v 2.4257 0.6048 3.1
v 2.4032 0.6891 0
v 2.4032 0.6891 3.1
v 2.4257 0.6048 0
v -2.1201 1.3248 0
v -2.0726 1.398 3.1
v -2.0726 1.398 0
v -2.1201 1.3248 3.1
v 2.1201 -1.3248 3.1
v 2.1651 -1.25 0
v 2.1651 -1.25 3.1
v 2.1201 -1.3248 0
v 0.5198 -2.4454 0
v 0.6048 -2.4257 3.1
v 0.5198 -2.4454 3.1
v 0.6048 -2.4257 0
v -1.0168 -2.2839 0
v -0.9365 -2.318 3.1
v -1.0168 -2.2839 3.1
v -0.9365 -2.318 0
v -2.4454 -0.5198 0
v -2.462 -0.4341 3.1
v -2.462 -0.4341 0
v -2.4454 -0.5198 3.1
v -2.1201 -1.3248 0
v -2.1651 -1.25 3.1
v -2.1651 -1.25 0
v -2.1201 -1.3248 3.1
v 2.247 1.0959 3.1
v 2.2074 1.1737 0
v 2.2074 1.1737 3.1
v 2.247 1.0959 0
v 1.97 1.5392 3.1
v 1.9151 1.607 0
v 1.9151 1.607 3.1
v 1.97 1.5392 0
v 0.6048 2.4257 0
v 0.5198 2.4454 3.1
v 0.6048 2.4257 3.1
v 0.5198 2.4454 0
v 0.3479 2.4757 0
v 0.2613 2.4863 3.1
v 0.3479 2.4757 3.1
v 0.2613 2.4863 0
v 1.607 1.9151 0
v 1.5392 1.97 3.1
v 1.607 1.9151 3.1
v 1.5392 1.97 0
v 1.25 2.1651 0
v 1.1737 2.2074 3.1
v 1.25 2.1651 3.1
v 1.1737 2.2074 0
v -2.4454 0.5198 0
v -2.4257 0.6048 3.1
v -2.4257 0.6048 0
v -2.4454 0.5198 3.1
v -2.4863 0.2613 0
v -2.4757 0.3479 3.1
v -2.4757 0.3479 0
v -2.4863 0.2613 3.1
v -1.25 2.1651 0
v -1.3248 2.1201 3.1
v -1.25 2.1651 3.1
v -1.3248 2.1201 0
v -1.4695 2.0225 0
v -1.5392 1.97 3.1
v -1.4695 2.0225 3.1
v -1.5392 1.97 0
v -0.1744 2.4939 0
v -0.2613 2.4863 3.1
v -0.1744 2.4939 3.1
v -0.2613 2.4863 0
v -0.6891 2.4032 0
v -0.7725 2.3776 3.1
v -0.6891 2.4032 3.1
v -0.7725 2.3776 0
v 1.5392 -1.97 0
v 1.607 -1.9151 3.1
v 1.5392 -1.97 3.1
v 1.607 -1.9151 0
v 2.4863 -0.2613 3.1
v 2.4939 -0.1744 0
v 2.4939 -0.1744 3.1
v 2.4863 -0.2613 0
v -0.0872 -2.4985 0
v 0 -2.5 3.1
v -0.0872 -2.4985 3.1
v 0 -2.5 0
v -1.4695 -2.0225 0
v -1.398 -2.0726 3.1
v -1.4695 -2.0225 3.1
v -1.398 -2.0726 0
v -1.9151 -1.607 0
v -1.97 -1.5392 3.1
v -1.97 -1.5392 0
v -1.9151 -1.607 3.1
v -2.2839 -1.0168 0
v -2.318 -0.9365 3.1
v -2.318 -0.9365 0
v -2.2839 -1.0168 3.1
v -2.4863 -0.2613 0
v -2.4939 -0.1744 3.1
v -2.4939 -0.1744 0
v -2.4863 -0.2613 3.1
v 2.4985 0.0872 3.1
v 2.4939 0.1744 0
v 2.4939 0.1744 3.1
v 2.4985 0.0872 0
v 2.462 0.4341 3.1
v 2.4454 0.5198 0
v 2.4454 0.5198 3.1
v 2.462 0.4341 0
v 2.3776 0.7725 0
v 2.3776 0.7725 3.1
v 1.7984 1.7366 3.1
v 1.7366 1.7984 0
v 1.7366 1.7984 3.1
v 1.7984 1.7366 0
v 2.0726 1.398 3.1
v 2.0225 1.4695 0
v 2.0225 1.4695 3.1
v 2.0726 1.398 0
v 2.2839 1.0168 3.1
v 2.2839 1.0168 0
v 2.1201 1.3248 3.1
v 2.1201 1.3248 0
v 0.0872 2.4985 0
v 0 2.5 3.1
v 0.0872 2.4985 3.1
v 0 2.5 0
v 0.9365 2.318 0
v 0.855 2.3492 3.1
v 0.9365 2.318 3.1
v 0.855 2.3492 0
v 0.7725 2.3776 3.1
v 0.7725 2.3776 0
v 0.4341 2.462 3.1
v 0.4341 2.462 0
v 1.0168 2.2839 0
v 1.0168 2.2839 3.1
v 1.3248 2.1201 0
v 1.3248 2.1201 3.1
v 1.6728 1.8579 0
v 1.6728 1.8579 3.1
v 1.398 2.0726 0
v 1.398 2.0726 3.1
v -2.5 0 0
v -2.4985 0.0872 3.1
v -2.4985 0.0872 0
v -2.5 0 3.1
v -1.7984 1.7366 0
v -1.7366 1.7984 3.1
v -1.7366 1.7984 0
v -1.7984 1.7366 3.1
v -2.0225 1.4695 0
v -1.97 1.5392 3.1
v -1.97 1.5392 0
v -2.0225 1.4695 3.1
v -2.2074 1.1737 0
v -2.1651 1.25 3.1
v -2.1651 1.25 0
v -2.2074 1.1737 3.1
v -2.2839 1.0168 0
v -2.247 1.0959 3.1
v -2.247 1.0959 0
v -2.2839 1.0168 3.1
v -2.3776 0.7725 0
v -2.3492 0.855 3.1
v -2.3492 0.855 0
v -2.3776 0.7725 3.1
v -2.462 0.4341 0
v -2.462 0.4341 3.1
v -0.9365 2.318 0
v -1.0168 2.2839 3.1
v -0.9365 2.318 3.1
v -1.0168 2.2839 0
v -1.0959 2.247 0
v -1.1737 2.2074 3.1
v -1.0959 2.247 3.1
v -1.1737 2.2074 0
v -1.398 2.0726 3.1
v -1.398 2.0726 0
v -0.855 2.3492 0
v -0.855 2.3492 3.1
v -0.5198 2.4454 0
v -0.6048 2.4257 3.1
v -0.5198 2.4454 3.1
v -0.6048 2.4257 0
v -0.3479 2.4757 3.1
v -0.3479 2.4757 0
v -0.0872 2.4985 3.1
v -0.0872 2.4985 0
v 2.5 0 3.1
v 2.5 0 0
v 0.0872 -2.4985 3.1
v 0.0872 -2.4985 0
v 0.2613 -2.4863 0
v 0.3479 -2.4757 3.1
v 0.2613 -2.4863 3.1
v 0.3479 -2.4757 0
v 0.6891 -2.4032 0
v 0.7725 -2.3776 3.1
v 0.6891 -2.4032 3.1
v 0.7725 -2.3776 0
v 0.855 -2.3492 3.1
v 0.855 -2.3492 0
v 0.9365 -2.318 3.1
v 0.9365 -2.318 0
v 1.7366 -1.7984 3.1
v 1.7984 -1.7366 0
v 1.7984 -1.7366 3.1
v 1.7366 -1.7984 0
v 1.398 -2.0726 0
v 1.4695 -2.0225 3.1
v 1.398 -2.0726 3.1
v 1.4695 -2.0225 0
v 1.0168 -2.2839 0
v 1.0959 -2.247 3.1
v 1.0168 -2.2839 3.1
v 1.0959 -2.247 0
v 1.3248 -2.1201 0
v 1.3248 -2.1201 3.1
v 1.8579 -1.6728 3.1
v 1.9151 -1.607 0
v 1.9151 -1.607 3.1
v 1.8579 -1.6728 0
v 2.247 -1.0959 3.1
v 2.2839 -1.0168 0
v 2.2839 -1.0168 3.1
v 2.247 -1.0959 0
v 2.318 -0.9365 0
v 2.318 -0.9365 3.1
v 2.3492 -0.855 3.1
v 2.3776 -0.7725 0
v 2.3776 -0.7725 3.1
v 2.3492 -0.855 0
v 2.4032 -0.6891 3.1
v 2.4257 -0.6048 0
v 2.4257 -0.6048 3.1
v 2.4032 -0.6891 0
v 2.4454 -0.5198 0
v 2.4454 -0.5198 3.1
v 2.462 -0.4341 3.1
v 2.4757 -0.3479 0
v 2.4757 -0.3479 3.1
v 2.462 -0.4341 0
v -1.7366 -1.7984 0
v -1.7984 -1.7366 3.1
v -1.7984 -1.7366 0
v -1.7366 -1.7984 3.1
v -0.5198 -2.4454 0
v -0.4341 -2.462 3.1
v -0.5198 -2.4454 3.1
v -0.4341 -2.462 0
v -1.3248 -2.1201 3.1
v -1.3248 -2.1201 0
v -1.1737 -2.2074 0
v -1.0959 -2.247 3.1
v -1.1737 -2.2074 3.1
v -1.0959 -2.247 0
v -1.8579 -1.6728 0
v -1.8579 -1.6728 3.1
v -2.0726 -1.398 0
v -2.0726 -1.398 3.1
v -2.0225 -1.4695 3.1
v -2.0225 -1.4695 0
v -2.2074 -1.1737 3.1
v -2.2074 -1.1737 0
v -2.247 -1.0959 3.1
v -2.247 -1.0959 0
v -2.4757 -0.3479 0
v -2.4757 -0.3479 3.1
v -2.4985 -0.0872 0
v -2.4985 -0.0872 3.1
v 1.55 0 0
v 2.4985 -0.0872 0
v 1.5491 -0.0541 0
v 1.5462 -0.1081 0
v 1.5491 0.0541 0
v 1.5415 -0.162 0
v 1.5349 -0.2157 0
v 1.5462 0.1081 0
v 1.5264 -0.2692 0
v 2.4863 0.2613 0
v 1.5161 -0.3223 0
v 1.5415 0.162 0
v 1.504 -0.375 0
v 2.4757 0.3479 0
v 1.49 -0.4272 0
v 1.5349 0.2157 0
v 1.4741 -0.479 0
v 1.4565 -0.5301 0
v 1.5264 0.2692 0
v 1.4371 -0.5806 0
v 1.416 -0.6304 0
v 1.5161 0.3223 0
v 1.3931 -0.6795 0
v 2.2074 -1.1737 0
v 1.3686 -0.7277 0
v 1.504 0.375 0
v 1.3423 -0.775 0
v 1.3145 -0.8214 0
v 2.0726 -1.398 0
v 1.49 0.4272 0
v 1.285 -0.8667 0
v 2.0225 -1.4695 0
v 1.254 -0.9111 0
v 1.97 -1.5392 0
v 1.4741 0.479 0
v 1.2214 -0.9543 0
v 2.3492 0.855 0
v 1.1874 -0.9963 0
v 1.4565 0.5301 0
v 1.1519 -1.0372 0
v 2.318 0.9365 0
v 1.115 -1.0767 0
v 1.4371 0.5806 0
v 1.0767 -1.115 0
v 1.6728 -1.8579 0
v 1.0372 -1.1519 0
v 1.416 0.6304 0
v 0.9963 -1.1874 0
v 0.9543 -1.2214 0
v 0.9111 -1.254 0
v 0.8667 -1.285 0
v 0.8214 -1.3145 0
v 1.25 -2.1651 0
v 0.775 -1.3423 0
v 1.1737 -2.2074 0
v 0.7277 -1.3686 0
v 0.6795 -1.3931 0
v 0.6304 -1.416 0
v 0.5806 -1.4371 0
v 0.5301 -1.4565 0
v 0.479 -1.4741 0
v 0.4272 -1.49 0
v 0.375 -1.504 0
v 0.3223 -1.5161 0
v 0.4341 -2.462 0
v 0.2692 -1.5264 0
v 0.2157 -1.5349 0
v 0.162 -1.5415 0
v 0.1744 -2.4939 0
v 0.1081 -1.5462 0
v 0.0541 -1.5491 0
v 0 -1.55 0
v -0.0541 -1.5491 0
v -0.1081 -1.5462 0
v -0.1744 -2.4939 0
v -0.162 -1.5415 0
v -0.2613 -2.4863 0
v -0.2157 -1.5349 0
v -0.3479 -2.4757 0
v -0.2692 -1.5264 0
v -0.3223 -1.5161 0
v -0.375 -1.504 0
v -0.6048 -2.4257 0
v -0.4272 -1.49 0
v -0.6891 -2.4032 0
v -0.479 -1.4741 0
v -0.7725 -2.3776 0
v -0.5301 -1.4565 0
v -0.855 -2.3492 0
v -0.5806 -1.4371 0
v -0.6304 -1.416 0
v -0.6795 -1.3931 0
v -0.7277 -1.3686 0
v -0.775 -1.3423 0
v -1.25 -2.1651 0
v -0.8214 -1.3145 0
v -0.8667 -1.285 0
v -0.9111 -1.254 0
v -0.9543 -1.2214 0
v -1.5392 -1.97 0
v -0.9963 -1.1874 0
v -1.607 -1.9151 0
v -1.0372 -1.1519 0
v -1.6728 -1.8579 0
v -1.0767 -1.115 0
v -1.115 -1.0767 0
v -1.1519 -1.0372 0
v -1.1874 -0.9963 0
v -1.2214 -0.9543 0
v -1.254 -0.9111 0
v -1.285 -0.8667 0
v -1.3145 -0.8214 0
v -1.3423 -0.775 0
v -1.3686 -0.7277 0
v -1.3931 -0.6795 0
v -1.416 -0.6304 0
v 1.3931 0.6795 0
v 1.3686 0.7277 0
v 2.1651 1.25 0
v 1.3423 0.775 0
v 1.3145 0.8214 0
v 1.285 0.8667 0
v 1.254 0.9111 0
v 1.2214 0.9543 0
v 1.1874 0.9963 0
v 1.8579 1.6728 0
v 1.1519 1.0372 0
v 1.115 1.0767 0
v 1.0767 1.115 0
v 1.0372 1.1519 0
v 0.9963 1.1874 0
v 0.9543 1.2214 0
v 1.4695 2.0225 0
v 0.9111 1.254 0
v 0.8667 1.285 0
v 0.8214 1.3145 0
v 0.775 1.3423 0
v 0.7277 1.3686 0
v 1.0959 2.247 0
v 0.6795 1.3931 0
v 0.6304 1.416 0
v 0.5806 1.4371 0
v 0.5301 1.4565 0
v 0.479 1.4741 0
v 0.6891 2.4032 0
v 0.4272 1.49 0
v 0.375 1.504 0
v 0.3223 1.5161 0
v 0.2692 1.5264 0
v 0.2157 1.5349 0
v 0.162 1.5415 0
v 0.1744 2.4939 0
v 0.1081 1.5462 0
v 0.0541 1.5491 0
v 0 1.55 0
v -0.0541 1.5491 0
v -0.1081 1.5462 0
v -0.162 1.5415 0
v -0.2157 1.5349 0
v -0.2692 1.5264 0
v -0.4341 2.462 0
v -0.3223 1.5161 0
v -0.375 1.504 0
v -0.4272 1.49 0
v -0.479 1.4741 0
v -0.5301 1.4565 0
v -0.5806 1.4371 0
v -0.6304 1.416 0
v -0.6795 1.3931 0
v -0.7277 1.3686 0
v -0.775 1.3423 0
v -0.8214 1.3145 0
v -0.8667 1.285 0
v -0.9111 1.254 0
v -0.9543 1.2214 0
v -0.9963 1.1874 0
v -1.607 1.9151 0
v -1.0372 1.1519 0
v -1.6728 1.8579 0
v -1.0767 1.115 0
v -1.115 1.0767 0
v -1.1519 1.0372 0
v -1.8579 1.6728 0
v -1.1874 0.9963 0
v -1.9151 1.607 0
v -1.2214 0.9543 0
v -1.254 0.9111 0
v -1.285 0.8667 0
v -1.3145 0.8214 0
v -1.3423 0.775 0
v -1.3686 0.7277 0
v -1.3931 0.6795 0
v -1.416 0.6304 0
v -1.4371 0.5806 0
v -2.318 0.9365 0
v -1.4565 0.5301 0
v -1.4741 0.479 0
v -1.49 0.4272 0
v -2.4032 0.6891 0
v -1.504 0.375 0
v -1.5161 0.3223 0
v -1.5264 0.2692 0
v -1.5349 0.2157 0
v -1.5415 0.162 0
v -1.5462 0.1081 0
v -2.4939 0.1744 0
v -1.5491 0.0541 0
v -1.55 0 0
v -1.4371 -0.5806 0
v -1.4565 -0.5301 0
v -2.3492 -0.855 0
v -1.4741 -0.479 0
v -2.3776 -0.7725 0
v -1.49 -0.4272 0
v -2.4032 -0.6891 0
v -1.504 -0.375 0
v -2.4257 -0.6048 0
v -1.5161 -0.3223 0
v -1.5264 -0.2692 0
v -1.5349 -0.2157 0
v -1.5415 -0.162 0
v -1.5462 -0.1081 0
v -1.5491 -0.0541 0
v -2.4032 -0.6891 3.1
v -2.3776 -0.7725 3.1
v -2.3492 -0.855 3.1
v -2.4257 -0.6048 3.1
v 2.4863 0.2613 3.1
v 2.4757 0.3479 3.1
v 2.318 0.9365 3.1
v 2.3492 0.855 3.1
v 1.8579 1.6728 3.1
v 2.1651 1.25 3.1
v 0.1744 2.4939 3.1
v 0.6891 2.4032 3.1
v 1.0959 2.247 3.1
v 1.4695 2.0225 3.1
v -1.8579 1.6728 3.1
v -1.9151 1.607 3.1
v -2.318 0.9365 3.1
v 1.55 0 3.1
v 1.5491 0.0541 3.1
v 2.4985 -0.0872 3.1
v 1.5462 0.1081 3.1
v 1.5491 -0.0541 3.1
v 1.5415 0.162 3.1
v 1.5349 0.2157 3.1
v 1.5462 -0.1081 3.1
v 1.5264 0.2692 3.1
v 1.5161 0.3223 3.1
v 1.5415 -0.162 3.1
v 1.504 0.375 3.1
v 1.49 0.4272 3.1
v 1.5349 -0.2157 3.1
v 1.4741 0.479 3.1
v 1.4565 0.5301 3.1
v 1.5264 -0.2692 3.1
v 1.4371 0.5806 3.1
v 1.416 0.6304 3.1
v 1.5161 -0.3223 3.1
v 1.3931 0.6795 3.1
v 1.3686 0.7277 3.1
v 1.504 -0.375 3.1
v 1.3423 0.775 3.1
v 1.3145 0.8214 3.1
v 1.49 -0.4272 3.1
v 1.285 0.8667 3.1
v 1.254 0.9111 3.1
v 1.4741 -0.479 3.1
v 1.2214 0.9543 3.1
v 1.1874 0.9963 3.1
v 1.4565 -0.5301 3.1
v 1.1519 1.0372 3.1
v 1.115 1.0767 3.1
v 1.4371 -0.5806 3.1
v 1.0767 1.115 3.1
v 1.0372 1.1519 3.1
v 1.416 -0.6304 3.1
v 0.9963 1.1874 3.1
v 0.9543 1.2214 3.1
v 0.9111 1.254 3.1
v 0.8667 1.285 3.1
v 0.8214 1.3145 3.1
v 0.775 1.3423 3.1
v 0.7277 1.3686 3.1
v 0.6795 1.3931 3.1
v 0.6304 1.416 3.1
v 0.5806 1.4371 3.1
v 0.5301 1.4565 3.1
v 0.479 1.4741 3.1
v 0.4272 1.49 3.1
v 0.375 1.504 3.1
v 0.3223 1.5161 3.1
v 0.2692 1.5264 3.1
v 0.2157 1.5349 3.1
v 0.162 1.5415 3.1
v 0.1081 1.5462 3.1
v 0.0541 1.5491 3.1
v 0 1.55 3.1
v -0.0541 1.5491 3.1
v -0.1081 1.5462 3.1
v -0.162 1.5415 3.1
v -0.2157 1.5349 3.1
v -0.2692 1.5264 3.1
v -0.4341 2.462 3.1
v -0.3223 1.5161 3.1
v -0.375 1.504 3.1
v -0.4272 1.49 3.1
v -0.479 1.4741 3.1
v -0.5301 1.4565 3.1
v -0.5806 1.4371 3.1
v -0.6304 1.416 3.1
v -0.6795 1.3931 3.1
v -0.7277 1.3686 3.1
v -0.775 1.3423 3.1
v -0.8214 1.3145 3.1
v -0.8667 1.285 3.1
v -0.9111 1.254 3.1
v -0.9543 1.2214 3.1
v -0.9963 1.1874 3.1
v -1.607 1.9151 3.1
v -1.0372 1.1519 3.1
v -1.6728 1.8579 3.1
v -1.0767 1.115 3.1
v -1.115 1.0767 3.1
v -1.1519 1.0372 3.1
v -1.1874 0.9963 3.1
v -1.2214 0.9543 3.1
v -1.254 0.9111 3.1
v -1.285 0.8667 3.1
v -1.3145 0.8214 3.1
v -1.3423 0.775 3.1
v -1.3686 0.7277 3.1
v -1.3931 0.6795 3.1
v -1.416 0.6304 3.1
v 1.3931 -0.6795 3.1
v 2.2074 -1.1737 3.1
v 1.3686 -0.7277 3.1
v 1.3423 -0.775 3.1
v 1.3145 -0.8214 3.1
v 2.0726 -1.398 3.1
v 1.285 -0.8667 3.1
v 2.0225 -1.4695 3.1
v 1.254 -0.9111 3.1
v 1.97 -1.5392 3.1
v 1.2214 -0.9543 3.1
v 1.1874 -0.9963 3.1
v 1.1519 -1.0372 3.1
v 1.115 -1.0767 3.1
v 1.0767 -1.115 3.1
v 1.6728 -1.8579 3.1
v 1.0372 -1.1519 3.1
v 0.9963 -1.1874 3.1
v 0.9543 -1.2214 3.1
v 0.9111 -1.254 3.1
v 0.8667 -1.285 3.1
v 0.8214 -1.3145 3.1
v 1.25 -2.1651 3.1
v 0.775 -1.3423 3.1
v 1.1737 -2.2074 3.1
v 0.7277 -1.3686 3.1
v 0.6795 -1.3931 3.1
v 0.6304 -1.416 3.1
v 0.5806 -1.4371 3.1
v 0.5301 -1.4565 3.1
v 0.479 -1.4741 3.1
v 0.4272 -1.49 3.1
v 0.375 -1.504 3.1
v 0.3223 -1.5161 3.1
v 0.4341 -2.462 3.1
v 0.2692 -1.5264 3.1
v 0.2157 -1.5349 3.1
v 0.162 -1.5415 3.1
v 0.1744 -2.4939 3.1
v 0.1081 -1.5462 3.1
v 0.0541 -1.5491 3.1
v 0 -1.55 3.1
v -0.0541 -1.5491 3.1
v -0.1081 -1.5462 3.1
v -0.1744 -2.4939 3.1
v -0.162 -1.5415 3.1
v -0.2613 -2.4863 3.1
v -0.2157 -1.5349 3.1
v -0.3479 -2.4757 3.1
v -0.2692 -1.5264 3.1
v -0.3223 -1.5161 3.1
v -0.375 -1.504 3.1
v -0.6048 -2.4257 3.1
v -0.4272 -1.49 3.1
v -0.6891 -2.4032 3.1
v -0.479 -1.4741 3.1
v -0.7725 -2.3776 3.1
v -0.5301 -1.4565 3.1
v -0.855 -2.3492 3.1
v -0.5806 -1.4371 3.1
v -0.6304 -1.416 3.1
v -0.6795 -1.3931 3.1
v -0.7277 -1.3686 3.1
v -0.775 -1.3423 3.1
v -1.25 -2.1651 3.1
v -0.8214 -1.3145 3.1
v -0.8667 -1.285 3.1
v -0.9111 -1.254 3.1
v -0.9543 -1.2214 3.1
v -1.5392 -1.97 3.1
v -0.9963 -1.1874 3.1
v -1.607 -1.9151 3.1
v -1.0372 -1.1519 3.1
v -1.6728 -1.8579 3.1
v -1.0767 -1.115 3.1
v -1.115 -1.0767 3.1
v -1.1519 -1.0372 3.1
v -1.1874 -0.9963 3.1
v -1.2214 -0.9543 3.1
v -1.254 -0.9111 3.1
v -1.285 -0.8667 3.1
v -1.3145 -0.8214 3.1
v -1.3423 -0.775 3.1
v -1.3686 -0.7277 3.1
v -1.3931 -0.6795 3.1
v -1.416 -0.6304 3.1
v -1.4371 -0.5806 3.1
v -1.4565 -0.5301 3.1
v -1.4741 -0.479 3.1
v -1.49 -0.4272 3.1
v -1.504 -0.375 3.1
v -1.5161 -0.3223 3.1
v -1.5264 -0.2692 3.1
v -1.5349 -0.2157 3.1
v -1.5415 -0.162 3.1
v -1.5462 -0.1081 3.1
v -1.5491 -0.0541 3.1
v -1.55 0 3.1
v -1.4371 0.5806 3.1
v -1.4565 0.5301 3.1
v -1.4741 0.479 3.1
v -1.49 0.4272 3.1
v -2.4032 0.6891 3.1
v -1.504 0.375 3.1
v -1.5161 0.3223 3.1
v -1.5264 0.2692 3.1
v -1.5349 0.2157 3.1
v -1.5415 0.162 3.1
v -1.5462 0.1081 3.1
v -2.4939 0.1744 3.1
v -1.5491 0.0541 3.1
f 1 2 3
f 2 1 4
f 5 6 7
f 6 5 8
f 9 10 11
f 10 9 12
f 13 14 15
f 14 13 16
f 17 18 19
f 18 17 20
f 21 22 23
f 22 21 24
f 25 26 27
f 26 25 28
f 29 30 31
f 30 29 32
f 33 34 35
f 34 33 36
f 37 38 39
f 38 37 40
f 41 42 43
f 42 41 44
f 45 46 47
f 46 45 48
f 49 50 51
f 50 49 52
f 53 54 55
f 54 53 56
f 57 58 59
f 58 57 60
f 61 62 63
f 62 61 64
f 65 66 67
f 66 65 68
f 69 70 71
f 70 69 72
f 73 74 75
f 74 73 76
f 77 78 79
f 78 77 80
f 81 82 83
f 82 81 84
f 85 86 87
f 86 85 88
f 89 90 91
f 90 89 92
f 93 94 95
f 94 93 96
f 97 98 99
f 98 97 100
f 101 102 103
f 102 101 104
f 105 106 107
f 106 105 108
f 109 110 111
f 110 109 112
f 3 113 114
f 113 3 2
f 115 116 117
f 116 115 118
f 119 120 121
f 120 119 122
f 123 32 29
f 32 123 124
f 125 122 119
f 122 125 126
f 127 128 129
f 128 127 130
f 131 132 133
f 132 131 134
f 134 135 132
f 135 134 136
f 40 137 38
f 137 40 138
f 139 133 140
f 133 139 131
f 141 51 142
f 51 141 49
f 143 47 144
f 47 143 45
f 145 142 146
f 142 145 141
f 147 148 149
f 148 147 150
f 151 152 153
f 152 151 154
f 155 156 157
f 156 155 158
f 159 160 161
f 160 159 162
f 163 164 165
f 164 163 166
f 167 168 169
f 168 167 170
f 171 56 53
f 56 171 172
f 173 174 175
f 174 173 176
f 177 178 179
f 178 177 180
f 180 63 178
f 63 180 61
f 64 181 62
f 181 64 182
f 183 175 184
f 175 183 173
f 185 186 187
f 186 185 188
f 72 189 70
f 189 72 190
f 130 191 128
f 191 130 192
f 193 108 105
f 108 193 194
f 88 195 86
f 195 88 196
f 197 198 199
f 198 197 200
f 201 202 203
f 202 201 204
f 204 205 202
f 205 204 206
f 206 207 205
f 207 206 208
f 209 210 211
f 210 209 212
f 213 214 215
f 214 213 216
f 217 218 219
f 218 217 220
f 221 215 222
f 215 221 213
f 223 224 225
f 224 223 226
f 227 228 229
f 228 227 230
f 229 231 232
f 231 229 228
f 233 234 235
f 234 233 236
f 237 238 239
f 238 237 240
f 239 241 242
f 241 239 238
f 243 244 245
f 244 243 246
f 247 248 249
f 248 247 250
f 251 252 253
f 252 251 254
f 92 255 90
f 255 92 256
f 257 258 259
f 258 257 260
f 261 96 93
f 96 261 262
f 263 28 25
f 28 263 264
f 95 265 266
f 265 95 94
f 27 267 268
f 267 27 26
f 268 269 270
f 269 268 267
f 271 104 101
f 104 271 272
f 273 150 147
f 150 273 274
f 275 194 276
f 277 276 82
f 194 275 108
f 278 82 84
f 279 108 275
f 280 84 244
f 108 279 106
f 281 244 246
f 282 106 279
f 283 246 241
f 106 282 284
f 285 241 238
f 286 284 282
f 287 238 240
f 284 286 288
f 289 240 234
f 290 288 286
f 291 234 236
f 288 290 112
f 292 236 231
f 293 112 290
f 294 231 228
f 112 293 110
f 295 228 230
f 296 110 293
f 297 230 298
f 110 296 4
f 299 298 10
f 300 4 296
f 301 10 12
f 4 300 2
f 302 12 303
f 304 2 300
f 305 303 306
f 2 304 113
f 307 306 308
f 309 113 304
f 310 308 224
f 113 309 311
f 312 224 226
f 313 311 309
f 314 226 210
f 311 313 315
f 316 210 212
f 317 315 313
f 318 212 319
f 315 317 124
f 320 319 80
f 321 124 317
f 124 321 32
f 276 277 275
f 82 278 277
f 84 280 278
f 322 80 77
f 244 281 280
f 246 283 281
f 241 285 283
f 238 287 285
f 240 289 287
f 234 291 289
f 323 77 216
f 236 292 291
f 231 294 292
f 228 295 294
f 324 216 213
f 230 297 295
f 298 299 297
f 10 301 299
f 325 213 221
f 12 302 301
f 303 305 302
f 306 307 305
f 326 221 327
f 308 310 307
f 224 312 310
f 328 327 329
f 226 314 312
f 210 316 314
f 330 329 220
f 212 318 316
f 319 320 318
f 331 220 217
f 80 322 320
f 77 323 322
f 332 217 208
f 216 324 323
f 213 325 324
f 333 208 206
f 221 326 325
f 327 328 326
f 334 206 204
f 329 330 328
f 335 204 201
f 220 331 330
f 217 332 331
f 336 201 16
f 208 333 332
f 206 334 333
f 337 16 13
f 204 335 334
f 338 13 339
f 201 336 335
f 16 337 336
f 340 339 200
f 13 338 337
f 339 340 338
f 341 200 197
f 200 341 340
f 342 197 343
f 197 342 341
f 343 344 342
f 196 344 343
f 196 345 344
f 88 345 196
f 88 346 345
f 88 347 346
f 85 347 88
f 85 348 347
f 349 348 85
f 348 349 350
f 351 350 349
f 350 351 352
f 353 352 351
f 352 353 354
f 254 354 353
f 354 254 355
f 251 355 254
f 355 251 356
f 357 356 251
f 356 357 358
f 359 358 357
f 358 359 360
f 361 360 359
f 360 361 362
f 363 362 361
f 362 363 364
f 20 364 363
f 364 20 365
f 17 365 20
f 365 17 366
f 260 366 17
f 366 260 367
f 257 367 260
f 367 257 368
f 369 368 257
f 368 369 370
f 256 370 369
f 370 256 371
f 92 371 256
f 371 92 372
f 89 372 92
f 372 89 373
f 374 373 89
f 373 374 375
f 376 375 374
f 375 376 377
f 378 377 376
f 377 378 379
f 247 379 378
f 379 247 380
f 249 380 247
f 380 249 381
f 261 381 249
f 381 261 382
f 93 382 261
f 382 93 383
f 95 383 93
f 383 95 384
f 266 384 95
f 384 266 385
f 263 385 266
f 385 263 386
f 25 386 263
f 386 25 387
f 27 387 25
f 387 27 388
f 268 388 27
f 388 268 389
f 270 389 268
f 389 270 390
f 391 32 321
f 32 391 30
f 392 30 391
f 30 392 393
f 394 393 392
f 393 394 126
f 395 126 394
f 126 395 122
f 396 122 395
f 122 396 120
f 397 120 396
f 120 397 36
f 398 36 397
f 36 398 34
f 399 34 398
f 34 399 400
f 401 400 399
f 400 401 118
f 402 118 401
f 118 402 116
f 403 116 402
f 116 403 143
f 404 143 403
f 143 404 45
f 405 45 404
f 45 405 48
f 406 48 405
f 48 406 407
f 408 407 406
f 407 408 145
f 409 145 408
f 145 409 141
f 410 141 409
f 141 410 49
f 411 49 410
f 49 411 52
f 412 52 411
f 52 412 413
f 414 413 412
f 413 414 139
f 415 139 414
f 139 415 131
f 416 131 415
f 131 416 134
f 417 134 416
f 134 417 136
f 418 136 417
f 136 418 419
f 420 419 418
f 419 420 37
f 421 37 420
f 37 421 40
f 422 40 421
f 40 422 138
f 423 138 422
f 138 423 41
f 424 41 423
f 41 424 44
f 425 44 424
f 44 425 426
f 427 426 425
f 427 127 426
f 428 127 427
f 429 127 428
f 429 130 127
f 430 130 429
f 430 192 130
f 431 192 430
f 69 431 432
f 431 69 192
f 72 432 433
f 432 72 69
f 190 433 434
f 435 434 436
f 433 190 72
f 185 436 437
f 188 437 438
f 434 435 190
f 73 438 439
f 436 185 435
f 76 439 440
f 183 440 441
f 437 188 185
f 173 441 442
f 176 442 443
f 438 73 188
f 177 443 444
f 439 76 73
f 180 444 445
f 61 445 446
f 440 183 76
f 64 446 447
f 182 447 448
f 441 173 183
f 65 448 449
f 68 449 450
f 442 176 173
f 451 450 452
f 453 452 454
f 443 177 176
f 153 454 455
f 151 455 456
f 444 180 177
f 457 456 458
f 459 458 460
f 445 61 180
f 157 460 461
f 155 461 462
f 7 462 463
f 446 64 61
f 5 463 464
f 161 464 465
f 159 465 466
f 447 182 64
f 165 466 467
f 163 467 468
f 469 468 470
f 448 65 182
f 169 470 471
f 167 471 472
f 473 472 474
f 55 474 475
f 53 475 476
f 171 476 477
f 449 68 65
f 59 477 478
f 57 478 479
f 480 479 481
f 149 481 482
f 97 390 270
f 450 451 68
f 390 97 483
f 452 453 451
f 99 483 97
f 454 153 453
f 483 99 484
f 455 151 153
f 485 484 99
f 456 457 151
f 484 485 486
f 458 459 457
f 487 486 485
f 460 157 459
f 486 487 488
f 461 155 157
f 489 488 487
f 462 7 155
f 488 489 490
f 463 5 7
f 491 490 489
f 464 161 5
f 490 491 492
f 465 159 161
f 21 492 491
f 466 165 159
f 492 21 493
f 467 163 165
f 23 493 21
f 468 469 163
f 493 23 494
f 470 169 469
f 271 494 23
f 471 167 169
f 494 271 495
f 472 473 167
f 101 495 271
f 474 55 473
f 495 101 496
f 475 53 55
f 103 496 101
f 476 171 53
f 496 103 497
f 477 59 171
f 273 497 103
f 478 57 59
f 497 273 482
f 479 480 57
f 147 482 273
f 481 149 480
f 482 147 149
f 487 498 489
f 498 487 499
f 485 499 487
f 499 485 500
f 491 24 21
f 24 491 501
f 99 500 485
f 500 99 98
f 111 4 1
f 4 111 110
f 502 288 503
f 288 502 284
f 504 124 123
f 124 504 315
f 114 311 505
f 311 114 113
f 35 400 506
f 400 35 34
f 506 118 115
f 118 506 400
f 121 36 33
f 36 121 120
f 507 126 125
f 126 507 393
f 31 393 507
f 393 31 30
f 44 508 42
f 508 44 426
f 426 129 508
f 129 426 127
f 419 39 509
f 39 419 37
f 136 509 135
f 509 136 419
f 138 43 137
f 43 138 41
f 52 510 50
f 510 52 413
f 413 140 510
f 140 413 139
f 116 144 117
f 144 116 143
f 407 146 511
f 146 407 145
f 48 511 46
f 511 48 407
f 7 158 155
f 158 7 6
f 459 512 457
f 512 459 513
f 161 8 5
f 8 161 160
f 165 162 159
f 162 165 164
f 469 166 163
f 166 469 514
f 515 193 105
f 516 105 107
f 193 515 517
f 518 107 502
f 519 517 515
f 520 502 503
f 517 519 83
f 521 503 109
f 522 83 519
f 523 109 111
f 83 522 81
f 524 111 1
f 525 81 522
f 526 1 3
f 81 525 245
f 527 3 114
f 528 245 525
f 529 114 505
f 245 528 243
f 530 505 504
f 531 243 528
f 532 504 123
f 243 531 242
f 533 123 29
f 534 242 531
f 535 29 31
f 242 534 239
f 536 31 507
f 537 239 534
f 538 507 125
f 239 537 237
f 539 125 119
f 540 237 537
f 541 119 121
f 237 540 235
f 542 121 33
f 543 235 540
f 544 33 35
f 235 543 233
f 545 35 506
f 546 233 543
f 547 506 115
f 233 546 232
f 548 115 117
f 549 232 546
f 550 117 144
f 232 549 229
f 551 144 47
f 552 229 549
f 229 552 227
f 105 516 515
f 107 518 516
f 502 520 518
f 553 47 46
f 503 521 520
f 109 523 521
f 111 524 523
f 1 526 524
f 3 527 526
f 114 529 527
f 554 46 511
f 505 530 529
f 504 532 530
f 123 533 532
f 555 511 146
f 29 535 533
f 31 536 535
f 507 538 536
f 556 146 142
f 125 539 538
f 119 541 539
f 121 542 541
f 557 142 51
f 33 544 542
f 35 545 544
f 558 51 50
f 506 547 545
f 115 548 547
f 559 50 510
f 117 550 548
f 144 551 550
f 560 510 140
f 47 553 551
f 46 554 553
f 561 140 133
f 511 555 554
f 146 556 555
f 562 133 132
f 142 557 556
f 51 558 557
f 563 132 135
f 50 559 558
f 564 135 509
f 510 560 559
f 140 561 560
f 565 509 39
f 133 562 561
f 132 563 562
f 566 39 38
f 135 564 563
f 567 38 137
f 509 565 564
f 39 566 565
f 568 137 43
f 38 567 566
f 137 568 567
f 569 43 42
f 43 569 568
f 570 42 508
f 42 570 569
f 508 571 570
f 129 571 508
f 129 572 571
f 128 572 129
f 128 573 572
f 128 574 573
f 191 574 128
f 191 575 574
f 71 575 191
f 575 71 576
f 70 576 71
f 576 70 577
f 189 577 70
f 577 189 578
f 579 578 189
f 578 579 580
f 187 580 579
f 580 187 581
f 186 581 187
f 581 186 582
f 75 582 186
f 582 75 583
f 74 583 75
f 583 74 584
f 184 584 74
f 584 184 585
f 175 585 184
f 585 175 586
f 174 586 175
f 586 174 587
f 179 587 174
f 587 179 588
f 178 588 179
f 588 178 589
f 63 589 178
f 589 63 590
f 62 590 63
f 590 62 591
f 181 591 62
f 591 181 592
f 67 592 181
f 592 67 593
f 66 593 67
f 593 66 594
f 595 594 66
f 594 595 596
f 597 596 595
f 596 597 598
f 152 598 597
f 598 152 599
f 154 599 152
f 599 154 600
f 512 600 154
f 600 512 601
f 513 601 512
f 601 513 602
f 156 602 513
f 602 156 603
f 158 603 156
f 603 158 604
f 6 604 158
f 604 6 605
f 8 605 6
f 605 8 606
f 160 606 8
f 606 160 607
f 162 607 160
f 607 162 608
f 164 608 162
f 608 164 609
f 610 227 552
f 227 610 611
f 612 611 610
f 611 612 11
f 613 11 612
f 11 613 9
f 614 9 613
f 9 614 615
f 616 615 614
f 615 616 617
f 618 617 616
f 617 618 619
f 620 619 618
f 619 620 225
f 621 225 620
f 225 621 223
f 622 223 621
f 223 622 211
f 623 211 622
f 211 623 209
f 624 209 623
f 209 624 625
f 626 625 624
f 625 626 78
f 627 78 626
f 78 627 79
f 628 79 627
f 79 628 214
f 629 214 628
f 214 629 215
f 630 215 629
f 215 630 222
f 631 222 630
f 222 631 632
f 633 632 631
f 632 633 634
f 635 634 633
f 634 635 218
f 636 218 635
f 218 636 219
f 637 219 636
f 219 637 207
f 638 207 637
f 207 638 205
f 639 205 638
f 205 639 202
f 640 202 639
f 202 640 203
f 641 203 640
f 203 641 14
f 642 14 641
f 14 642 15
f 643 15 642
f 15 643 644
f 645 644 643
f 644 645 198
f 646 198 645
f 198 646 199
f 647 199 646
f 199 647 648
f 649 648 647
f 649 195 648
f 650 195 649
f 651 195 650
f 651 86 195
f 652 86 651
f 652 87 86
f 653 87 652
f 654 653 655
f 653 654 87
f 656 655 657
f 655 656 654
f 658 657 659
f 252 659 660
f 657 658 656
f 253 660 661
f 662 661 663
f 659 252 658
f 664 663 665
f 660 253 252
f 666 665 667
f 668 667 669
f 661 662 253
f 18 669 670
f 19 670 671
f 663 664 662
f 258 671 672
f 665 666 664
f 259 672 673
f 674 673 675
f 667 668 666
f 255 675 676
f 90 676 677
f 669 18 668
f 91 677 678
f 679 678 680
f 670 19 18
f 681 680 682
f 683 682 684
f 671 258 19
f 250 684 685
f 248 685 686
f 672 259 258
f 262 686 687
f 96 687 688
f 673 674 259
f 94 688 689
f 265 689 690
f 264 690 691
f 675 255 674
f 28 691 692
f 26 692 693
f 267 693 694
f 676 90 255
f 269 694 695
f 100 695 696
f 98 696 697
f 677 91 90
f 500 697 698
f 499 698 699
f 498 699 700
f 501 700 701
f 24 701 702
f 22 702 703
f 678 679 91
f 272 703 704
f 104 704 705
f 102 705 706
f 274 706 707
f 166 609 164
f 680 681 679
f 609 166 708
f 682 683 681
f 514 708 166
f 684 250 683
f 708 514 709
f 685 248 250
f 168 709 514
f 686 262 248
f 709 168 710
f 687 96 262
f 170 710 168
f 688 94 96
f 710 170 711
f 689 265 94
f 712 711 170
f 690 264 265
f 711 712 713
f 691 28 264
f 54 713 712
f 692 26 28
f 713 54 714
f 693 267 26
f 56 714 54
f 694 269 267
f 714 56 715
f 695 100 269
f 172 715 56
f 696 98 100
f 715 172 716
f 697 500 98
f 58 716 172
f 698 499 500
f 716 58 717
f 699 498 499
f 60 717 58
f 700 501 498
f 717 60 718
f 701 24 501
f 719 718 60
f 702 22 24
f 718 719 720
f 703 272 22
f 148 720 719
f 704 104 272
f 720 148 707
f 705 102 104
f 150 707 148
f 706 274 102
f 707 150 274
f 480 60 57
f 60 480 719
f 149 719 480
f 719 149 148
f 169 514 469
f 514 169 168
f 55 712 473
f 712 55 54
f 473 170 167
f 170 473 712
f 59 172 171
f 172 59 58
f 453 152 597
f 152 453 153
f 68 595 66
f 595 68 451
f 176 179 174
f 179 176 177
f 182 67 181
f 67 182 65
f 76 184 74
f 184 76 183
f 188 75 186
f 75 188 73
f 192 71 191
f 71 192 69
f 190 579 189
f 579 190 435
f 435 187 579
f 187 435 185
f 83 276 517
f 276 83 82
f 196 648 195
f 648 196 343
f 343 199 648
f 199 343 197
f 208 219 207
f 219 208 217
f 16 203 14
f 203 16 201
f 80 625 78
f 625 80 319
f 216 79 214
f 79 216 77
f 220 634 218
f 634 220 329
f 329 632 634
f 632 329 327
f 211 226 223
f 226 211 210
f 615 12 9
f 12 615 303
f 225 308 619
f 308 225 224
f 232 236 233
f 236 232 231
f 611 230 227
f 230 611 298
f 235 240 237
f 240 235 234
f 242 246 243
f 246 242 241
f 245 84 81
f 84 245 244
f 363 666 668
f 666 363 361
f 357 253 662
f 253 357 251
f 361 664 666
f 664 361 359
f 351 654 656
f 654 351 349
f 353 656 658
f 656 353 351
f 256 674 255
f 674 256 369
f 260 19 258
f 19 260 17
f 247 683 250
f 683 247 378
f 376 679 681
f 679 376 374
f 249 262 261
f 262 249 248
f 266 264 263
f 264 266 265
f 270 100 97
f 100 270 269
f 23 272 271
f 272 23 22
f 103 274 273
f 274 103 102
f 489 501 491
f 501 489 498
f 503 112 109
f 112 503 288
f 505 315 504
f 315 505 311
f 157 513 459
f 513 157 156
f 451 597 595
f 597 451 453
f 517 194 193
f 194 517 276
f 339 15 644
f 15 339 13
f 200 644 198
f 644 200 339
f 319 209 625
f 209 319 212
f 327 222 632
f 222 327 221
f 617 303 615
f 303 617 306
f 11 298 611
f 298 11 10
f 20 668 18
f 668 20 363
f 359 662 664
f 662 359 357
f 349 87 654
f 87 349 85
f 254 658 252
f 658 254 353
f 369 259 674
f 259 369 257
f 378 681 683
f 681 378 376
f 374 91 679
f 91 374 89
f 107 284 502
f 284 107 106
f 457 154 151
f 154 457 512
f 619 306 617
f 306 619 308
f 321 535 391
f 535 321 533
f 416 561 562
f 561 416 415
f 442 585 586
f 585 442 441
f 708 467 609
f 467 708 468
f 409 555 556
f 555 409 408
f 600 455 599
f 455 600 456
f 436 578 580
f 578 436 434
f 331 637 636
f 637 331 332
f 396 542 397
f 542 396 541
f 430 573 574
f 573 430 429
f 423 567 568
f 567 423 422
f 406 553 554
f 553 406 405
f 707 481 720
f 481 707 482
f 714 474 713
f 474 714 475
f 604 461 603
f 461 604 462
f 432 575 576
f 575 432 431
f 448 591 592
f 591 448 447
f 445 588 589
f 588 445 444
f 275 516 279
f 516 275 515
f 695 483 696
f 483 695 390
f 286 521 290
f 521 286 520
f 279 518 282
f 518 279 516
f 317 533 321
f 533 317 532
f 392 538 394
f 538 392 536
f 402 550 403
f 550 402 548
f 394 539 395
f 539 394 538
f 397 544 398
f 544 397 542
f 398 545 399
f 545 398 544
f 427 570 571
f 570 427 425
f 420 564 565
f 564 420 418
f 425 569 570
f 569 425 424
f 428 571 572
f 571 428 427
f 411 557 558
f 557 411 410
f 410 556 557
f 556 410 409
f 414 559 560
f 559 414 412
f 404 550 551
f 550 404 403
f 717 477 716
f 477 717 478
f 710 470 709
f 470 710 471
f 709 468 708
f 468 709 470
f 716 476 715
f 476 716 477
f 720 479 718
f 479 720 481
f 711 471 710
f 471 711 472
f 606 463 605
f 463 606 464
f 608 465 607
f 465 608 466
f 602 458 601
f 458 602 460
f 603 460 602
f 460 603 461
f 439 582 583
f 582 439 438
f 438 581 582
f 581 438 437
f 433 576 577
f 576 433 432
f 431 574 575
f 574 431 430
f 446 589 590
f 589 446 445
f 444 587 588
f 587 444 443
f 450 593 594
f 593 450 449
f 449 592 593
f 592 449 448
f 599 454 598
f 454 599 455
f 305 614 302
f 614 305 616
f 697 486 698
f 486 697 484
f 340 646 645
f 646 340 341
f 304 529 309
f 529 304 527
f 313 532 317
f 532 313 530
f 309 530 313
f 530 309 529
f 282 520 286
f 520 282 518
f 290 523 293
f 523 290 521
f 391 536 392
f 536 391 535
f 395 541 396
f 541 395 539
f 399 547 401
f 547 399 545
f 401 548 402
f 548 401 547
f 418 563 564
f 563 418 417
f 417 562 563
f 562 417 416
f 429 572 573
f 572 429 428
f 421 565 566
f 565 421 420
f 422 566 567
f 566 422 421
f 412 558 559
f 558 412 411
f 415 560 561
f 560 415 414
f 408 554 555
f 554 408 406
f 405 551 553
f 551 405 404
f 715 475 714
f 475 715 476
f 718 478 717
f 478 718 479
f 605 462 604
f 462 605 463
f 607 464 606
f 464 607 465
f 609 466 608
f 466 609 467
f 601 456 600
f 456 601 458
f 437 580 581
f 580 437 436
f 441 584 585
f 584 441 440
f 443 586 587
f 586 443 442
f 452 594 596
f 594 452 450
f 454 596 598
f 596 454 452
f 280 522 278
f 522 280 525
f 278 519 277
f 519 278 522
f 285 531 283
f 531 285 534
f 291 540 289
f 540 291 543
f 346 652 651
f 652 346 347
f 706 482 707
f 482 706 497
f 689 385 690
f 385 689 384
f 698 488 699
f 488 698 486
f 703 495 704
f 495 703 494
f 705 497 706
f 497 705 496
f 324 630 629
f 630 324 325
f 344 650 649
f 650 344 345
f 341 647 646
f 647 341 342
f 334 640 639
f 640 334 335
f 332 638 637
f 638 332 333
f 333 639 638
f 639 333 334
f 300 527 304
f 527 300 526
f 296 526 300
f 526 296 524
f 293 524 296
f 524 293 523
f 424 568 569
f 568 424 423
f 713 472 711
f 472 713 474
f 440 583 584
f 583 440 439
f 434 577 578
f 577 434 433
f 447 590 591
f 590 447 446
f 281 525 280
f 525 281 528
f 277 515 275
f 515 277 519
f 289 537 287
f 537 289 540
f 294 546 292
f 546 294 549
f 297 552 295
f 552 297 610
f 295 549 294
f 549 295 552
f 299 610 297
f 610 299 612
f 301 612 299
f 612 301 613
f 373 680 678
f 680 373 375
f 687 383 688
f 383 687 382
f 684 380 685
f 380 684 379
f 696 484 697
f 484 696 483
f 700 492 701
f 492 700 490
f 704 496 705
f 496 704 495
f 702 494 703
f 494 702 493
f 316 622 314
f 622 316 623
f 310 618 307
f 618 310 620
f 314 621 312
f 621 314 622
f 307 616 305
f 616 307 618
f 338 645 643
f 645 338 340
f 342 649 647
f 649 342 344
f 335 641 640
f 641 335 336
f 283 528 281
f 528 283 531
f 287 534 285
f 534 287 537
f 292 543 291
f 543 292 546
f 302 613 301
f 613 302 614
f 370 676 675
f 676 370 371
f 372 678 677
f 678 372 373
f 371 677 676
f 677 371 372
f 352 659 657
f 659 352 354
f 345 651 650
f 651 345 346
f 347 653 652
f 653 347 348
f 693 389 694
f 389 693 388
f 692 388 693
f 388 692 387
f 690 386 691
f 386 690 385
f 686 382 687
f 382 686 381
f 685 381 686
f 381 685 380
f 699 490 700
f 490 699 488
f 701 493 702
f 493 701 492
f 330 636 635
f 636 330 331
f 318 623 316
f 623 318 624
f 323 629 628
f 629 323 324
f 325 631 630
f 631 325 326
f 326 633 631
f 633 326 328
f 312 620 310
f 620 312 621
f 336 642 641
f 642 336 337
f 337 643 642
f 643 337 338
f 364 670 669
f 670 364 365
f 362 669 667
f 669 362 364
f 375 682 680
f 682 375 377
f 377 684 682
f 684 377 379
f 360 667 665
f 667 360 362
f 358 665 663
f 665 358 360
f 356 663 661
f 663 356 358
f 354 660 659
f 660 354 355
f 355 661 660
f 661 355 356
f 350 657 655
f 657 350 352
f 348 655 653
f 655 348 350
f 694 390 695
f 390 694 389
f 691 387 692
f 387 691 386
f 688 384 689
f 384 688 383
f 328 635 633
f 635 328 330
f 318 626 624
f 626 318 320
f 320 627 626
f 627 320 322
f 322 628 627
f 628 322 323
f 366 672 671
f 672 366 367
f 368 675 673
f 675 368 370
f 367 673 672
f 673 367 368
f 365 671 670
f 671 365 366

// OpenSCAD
$fn = 180;

diameter_outter = 5;
diameter_inner = 3.1;
height = 3.1;

difference() {
    cylinder(d=diameter_outter, height);
    cylinder(d=diameter_inner, height);
}
